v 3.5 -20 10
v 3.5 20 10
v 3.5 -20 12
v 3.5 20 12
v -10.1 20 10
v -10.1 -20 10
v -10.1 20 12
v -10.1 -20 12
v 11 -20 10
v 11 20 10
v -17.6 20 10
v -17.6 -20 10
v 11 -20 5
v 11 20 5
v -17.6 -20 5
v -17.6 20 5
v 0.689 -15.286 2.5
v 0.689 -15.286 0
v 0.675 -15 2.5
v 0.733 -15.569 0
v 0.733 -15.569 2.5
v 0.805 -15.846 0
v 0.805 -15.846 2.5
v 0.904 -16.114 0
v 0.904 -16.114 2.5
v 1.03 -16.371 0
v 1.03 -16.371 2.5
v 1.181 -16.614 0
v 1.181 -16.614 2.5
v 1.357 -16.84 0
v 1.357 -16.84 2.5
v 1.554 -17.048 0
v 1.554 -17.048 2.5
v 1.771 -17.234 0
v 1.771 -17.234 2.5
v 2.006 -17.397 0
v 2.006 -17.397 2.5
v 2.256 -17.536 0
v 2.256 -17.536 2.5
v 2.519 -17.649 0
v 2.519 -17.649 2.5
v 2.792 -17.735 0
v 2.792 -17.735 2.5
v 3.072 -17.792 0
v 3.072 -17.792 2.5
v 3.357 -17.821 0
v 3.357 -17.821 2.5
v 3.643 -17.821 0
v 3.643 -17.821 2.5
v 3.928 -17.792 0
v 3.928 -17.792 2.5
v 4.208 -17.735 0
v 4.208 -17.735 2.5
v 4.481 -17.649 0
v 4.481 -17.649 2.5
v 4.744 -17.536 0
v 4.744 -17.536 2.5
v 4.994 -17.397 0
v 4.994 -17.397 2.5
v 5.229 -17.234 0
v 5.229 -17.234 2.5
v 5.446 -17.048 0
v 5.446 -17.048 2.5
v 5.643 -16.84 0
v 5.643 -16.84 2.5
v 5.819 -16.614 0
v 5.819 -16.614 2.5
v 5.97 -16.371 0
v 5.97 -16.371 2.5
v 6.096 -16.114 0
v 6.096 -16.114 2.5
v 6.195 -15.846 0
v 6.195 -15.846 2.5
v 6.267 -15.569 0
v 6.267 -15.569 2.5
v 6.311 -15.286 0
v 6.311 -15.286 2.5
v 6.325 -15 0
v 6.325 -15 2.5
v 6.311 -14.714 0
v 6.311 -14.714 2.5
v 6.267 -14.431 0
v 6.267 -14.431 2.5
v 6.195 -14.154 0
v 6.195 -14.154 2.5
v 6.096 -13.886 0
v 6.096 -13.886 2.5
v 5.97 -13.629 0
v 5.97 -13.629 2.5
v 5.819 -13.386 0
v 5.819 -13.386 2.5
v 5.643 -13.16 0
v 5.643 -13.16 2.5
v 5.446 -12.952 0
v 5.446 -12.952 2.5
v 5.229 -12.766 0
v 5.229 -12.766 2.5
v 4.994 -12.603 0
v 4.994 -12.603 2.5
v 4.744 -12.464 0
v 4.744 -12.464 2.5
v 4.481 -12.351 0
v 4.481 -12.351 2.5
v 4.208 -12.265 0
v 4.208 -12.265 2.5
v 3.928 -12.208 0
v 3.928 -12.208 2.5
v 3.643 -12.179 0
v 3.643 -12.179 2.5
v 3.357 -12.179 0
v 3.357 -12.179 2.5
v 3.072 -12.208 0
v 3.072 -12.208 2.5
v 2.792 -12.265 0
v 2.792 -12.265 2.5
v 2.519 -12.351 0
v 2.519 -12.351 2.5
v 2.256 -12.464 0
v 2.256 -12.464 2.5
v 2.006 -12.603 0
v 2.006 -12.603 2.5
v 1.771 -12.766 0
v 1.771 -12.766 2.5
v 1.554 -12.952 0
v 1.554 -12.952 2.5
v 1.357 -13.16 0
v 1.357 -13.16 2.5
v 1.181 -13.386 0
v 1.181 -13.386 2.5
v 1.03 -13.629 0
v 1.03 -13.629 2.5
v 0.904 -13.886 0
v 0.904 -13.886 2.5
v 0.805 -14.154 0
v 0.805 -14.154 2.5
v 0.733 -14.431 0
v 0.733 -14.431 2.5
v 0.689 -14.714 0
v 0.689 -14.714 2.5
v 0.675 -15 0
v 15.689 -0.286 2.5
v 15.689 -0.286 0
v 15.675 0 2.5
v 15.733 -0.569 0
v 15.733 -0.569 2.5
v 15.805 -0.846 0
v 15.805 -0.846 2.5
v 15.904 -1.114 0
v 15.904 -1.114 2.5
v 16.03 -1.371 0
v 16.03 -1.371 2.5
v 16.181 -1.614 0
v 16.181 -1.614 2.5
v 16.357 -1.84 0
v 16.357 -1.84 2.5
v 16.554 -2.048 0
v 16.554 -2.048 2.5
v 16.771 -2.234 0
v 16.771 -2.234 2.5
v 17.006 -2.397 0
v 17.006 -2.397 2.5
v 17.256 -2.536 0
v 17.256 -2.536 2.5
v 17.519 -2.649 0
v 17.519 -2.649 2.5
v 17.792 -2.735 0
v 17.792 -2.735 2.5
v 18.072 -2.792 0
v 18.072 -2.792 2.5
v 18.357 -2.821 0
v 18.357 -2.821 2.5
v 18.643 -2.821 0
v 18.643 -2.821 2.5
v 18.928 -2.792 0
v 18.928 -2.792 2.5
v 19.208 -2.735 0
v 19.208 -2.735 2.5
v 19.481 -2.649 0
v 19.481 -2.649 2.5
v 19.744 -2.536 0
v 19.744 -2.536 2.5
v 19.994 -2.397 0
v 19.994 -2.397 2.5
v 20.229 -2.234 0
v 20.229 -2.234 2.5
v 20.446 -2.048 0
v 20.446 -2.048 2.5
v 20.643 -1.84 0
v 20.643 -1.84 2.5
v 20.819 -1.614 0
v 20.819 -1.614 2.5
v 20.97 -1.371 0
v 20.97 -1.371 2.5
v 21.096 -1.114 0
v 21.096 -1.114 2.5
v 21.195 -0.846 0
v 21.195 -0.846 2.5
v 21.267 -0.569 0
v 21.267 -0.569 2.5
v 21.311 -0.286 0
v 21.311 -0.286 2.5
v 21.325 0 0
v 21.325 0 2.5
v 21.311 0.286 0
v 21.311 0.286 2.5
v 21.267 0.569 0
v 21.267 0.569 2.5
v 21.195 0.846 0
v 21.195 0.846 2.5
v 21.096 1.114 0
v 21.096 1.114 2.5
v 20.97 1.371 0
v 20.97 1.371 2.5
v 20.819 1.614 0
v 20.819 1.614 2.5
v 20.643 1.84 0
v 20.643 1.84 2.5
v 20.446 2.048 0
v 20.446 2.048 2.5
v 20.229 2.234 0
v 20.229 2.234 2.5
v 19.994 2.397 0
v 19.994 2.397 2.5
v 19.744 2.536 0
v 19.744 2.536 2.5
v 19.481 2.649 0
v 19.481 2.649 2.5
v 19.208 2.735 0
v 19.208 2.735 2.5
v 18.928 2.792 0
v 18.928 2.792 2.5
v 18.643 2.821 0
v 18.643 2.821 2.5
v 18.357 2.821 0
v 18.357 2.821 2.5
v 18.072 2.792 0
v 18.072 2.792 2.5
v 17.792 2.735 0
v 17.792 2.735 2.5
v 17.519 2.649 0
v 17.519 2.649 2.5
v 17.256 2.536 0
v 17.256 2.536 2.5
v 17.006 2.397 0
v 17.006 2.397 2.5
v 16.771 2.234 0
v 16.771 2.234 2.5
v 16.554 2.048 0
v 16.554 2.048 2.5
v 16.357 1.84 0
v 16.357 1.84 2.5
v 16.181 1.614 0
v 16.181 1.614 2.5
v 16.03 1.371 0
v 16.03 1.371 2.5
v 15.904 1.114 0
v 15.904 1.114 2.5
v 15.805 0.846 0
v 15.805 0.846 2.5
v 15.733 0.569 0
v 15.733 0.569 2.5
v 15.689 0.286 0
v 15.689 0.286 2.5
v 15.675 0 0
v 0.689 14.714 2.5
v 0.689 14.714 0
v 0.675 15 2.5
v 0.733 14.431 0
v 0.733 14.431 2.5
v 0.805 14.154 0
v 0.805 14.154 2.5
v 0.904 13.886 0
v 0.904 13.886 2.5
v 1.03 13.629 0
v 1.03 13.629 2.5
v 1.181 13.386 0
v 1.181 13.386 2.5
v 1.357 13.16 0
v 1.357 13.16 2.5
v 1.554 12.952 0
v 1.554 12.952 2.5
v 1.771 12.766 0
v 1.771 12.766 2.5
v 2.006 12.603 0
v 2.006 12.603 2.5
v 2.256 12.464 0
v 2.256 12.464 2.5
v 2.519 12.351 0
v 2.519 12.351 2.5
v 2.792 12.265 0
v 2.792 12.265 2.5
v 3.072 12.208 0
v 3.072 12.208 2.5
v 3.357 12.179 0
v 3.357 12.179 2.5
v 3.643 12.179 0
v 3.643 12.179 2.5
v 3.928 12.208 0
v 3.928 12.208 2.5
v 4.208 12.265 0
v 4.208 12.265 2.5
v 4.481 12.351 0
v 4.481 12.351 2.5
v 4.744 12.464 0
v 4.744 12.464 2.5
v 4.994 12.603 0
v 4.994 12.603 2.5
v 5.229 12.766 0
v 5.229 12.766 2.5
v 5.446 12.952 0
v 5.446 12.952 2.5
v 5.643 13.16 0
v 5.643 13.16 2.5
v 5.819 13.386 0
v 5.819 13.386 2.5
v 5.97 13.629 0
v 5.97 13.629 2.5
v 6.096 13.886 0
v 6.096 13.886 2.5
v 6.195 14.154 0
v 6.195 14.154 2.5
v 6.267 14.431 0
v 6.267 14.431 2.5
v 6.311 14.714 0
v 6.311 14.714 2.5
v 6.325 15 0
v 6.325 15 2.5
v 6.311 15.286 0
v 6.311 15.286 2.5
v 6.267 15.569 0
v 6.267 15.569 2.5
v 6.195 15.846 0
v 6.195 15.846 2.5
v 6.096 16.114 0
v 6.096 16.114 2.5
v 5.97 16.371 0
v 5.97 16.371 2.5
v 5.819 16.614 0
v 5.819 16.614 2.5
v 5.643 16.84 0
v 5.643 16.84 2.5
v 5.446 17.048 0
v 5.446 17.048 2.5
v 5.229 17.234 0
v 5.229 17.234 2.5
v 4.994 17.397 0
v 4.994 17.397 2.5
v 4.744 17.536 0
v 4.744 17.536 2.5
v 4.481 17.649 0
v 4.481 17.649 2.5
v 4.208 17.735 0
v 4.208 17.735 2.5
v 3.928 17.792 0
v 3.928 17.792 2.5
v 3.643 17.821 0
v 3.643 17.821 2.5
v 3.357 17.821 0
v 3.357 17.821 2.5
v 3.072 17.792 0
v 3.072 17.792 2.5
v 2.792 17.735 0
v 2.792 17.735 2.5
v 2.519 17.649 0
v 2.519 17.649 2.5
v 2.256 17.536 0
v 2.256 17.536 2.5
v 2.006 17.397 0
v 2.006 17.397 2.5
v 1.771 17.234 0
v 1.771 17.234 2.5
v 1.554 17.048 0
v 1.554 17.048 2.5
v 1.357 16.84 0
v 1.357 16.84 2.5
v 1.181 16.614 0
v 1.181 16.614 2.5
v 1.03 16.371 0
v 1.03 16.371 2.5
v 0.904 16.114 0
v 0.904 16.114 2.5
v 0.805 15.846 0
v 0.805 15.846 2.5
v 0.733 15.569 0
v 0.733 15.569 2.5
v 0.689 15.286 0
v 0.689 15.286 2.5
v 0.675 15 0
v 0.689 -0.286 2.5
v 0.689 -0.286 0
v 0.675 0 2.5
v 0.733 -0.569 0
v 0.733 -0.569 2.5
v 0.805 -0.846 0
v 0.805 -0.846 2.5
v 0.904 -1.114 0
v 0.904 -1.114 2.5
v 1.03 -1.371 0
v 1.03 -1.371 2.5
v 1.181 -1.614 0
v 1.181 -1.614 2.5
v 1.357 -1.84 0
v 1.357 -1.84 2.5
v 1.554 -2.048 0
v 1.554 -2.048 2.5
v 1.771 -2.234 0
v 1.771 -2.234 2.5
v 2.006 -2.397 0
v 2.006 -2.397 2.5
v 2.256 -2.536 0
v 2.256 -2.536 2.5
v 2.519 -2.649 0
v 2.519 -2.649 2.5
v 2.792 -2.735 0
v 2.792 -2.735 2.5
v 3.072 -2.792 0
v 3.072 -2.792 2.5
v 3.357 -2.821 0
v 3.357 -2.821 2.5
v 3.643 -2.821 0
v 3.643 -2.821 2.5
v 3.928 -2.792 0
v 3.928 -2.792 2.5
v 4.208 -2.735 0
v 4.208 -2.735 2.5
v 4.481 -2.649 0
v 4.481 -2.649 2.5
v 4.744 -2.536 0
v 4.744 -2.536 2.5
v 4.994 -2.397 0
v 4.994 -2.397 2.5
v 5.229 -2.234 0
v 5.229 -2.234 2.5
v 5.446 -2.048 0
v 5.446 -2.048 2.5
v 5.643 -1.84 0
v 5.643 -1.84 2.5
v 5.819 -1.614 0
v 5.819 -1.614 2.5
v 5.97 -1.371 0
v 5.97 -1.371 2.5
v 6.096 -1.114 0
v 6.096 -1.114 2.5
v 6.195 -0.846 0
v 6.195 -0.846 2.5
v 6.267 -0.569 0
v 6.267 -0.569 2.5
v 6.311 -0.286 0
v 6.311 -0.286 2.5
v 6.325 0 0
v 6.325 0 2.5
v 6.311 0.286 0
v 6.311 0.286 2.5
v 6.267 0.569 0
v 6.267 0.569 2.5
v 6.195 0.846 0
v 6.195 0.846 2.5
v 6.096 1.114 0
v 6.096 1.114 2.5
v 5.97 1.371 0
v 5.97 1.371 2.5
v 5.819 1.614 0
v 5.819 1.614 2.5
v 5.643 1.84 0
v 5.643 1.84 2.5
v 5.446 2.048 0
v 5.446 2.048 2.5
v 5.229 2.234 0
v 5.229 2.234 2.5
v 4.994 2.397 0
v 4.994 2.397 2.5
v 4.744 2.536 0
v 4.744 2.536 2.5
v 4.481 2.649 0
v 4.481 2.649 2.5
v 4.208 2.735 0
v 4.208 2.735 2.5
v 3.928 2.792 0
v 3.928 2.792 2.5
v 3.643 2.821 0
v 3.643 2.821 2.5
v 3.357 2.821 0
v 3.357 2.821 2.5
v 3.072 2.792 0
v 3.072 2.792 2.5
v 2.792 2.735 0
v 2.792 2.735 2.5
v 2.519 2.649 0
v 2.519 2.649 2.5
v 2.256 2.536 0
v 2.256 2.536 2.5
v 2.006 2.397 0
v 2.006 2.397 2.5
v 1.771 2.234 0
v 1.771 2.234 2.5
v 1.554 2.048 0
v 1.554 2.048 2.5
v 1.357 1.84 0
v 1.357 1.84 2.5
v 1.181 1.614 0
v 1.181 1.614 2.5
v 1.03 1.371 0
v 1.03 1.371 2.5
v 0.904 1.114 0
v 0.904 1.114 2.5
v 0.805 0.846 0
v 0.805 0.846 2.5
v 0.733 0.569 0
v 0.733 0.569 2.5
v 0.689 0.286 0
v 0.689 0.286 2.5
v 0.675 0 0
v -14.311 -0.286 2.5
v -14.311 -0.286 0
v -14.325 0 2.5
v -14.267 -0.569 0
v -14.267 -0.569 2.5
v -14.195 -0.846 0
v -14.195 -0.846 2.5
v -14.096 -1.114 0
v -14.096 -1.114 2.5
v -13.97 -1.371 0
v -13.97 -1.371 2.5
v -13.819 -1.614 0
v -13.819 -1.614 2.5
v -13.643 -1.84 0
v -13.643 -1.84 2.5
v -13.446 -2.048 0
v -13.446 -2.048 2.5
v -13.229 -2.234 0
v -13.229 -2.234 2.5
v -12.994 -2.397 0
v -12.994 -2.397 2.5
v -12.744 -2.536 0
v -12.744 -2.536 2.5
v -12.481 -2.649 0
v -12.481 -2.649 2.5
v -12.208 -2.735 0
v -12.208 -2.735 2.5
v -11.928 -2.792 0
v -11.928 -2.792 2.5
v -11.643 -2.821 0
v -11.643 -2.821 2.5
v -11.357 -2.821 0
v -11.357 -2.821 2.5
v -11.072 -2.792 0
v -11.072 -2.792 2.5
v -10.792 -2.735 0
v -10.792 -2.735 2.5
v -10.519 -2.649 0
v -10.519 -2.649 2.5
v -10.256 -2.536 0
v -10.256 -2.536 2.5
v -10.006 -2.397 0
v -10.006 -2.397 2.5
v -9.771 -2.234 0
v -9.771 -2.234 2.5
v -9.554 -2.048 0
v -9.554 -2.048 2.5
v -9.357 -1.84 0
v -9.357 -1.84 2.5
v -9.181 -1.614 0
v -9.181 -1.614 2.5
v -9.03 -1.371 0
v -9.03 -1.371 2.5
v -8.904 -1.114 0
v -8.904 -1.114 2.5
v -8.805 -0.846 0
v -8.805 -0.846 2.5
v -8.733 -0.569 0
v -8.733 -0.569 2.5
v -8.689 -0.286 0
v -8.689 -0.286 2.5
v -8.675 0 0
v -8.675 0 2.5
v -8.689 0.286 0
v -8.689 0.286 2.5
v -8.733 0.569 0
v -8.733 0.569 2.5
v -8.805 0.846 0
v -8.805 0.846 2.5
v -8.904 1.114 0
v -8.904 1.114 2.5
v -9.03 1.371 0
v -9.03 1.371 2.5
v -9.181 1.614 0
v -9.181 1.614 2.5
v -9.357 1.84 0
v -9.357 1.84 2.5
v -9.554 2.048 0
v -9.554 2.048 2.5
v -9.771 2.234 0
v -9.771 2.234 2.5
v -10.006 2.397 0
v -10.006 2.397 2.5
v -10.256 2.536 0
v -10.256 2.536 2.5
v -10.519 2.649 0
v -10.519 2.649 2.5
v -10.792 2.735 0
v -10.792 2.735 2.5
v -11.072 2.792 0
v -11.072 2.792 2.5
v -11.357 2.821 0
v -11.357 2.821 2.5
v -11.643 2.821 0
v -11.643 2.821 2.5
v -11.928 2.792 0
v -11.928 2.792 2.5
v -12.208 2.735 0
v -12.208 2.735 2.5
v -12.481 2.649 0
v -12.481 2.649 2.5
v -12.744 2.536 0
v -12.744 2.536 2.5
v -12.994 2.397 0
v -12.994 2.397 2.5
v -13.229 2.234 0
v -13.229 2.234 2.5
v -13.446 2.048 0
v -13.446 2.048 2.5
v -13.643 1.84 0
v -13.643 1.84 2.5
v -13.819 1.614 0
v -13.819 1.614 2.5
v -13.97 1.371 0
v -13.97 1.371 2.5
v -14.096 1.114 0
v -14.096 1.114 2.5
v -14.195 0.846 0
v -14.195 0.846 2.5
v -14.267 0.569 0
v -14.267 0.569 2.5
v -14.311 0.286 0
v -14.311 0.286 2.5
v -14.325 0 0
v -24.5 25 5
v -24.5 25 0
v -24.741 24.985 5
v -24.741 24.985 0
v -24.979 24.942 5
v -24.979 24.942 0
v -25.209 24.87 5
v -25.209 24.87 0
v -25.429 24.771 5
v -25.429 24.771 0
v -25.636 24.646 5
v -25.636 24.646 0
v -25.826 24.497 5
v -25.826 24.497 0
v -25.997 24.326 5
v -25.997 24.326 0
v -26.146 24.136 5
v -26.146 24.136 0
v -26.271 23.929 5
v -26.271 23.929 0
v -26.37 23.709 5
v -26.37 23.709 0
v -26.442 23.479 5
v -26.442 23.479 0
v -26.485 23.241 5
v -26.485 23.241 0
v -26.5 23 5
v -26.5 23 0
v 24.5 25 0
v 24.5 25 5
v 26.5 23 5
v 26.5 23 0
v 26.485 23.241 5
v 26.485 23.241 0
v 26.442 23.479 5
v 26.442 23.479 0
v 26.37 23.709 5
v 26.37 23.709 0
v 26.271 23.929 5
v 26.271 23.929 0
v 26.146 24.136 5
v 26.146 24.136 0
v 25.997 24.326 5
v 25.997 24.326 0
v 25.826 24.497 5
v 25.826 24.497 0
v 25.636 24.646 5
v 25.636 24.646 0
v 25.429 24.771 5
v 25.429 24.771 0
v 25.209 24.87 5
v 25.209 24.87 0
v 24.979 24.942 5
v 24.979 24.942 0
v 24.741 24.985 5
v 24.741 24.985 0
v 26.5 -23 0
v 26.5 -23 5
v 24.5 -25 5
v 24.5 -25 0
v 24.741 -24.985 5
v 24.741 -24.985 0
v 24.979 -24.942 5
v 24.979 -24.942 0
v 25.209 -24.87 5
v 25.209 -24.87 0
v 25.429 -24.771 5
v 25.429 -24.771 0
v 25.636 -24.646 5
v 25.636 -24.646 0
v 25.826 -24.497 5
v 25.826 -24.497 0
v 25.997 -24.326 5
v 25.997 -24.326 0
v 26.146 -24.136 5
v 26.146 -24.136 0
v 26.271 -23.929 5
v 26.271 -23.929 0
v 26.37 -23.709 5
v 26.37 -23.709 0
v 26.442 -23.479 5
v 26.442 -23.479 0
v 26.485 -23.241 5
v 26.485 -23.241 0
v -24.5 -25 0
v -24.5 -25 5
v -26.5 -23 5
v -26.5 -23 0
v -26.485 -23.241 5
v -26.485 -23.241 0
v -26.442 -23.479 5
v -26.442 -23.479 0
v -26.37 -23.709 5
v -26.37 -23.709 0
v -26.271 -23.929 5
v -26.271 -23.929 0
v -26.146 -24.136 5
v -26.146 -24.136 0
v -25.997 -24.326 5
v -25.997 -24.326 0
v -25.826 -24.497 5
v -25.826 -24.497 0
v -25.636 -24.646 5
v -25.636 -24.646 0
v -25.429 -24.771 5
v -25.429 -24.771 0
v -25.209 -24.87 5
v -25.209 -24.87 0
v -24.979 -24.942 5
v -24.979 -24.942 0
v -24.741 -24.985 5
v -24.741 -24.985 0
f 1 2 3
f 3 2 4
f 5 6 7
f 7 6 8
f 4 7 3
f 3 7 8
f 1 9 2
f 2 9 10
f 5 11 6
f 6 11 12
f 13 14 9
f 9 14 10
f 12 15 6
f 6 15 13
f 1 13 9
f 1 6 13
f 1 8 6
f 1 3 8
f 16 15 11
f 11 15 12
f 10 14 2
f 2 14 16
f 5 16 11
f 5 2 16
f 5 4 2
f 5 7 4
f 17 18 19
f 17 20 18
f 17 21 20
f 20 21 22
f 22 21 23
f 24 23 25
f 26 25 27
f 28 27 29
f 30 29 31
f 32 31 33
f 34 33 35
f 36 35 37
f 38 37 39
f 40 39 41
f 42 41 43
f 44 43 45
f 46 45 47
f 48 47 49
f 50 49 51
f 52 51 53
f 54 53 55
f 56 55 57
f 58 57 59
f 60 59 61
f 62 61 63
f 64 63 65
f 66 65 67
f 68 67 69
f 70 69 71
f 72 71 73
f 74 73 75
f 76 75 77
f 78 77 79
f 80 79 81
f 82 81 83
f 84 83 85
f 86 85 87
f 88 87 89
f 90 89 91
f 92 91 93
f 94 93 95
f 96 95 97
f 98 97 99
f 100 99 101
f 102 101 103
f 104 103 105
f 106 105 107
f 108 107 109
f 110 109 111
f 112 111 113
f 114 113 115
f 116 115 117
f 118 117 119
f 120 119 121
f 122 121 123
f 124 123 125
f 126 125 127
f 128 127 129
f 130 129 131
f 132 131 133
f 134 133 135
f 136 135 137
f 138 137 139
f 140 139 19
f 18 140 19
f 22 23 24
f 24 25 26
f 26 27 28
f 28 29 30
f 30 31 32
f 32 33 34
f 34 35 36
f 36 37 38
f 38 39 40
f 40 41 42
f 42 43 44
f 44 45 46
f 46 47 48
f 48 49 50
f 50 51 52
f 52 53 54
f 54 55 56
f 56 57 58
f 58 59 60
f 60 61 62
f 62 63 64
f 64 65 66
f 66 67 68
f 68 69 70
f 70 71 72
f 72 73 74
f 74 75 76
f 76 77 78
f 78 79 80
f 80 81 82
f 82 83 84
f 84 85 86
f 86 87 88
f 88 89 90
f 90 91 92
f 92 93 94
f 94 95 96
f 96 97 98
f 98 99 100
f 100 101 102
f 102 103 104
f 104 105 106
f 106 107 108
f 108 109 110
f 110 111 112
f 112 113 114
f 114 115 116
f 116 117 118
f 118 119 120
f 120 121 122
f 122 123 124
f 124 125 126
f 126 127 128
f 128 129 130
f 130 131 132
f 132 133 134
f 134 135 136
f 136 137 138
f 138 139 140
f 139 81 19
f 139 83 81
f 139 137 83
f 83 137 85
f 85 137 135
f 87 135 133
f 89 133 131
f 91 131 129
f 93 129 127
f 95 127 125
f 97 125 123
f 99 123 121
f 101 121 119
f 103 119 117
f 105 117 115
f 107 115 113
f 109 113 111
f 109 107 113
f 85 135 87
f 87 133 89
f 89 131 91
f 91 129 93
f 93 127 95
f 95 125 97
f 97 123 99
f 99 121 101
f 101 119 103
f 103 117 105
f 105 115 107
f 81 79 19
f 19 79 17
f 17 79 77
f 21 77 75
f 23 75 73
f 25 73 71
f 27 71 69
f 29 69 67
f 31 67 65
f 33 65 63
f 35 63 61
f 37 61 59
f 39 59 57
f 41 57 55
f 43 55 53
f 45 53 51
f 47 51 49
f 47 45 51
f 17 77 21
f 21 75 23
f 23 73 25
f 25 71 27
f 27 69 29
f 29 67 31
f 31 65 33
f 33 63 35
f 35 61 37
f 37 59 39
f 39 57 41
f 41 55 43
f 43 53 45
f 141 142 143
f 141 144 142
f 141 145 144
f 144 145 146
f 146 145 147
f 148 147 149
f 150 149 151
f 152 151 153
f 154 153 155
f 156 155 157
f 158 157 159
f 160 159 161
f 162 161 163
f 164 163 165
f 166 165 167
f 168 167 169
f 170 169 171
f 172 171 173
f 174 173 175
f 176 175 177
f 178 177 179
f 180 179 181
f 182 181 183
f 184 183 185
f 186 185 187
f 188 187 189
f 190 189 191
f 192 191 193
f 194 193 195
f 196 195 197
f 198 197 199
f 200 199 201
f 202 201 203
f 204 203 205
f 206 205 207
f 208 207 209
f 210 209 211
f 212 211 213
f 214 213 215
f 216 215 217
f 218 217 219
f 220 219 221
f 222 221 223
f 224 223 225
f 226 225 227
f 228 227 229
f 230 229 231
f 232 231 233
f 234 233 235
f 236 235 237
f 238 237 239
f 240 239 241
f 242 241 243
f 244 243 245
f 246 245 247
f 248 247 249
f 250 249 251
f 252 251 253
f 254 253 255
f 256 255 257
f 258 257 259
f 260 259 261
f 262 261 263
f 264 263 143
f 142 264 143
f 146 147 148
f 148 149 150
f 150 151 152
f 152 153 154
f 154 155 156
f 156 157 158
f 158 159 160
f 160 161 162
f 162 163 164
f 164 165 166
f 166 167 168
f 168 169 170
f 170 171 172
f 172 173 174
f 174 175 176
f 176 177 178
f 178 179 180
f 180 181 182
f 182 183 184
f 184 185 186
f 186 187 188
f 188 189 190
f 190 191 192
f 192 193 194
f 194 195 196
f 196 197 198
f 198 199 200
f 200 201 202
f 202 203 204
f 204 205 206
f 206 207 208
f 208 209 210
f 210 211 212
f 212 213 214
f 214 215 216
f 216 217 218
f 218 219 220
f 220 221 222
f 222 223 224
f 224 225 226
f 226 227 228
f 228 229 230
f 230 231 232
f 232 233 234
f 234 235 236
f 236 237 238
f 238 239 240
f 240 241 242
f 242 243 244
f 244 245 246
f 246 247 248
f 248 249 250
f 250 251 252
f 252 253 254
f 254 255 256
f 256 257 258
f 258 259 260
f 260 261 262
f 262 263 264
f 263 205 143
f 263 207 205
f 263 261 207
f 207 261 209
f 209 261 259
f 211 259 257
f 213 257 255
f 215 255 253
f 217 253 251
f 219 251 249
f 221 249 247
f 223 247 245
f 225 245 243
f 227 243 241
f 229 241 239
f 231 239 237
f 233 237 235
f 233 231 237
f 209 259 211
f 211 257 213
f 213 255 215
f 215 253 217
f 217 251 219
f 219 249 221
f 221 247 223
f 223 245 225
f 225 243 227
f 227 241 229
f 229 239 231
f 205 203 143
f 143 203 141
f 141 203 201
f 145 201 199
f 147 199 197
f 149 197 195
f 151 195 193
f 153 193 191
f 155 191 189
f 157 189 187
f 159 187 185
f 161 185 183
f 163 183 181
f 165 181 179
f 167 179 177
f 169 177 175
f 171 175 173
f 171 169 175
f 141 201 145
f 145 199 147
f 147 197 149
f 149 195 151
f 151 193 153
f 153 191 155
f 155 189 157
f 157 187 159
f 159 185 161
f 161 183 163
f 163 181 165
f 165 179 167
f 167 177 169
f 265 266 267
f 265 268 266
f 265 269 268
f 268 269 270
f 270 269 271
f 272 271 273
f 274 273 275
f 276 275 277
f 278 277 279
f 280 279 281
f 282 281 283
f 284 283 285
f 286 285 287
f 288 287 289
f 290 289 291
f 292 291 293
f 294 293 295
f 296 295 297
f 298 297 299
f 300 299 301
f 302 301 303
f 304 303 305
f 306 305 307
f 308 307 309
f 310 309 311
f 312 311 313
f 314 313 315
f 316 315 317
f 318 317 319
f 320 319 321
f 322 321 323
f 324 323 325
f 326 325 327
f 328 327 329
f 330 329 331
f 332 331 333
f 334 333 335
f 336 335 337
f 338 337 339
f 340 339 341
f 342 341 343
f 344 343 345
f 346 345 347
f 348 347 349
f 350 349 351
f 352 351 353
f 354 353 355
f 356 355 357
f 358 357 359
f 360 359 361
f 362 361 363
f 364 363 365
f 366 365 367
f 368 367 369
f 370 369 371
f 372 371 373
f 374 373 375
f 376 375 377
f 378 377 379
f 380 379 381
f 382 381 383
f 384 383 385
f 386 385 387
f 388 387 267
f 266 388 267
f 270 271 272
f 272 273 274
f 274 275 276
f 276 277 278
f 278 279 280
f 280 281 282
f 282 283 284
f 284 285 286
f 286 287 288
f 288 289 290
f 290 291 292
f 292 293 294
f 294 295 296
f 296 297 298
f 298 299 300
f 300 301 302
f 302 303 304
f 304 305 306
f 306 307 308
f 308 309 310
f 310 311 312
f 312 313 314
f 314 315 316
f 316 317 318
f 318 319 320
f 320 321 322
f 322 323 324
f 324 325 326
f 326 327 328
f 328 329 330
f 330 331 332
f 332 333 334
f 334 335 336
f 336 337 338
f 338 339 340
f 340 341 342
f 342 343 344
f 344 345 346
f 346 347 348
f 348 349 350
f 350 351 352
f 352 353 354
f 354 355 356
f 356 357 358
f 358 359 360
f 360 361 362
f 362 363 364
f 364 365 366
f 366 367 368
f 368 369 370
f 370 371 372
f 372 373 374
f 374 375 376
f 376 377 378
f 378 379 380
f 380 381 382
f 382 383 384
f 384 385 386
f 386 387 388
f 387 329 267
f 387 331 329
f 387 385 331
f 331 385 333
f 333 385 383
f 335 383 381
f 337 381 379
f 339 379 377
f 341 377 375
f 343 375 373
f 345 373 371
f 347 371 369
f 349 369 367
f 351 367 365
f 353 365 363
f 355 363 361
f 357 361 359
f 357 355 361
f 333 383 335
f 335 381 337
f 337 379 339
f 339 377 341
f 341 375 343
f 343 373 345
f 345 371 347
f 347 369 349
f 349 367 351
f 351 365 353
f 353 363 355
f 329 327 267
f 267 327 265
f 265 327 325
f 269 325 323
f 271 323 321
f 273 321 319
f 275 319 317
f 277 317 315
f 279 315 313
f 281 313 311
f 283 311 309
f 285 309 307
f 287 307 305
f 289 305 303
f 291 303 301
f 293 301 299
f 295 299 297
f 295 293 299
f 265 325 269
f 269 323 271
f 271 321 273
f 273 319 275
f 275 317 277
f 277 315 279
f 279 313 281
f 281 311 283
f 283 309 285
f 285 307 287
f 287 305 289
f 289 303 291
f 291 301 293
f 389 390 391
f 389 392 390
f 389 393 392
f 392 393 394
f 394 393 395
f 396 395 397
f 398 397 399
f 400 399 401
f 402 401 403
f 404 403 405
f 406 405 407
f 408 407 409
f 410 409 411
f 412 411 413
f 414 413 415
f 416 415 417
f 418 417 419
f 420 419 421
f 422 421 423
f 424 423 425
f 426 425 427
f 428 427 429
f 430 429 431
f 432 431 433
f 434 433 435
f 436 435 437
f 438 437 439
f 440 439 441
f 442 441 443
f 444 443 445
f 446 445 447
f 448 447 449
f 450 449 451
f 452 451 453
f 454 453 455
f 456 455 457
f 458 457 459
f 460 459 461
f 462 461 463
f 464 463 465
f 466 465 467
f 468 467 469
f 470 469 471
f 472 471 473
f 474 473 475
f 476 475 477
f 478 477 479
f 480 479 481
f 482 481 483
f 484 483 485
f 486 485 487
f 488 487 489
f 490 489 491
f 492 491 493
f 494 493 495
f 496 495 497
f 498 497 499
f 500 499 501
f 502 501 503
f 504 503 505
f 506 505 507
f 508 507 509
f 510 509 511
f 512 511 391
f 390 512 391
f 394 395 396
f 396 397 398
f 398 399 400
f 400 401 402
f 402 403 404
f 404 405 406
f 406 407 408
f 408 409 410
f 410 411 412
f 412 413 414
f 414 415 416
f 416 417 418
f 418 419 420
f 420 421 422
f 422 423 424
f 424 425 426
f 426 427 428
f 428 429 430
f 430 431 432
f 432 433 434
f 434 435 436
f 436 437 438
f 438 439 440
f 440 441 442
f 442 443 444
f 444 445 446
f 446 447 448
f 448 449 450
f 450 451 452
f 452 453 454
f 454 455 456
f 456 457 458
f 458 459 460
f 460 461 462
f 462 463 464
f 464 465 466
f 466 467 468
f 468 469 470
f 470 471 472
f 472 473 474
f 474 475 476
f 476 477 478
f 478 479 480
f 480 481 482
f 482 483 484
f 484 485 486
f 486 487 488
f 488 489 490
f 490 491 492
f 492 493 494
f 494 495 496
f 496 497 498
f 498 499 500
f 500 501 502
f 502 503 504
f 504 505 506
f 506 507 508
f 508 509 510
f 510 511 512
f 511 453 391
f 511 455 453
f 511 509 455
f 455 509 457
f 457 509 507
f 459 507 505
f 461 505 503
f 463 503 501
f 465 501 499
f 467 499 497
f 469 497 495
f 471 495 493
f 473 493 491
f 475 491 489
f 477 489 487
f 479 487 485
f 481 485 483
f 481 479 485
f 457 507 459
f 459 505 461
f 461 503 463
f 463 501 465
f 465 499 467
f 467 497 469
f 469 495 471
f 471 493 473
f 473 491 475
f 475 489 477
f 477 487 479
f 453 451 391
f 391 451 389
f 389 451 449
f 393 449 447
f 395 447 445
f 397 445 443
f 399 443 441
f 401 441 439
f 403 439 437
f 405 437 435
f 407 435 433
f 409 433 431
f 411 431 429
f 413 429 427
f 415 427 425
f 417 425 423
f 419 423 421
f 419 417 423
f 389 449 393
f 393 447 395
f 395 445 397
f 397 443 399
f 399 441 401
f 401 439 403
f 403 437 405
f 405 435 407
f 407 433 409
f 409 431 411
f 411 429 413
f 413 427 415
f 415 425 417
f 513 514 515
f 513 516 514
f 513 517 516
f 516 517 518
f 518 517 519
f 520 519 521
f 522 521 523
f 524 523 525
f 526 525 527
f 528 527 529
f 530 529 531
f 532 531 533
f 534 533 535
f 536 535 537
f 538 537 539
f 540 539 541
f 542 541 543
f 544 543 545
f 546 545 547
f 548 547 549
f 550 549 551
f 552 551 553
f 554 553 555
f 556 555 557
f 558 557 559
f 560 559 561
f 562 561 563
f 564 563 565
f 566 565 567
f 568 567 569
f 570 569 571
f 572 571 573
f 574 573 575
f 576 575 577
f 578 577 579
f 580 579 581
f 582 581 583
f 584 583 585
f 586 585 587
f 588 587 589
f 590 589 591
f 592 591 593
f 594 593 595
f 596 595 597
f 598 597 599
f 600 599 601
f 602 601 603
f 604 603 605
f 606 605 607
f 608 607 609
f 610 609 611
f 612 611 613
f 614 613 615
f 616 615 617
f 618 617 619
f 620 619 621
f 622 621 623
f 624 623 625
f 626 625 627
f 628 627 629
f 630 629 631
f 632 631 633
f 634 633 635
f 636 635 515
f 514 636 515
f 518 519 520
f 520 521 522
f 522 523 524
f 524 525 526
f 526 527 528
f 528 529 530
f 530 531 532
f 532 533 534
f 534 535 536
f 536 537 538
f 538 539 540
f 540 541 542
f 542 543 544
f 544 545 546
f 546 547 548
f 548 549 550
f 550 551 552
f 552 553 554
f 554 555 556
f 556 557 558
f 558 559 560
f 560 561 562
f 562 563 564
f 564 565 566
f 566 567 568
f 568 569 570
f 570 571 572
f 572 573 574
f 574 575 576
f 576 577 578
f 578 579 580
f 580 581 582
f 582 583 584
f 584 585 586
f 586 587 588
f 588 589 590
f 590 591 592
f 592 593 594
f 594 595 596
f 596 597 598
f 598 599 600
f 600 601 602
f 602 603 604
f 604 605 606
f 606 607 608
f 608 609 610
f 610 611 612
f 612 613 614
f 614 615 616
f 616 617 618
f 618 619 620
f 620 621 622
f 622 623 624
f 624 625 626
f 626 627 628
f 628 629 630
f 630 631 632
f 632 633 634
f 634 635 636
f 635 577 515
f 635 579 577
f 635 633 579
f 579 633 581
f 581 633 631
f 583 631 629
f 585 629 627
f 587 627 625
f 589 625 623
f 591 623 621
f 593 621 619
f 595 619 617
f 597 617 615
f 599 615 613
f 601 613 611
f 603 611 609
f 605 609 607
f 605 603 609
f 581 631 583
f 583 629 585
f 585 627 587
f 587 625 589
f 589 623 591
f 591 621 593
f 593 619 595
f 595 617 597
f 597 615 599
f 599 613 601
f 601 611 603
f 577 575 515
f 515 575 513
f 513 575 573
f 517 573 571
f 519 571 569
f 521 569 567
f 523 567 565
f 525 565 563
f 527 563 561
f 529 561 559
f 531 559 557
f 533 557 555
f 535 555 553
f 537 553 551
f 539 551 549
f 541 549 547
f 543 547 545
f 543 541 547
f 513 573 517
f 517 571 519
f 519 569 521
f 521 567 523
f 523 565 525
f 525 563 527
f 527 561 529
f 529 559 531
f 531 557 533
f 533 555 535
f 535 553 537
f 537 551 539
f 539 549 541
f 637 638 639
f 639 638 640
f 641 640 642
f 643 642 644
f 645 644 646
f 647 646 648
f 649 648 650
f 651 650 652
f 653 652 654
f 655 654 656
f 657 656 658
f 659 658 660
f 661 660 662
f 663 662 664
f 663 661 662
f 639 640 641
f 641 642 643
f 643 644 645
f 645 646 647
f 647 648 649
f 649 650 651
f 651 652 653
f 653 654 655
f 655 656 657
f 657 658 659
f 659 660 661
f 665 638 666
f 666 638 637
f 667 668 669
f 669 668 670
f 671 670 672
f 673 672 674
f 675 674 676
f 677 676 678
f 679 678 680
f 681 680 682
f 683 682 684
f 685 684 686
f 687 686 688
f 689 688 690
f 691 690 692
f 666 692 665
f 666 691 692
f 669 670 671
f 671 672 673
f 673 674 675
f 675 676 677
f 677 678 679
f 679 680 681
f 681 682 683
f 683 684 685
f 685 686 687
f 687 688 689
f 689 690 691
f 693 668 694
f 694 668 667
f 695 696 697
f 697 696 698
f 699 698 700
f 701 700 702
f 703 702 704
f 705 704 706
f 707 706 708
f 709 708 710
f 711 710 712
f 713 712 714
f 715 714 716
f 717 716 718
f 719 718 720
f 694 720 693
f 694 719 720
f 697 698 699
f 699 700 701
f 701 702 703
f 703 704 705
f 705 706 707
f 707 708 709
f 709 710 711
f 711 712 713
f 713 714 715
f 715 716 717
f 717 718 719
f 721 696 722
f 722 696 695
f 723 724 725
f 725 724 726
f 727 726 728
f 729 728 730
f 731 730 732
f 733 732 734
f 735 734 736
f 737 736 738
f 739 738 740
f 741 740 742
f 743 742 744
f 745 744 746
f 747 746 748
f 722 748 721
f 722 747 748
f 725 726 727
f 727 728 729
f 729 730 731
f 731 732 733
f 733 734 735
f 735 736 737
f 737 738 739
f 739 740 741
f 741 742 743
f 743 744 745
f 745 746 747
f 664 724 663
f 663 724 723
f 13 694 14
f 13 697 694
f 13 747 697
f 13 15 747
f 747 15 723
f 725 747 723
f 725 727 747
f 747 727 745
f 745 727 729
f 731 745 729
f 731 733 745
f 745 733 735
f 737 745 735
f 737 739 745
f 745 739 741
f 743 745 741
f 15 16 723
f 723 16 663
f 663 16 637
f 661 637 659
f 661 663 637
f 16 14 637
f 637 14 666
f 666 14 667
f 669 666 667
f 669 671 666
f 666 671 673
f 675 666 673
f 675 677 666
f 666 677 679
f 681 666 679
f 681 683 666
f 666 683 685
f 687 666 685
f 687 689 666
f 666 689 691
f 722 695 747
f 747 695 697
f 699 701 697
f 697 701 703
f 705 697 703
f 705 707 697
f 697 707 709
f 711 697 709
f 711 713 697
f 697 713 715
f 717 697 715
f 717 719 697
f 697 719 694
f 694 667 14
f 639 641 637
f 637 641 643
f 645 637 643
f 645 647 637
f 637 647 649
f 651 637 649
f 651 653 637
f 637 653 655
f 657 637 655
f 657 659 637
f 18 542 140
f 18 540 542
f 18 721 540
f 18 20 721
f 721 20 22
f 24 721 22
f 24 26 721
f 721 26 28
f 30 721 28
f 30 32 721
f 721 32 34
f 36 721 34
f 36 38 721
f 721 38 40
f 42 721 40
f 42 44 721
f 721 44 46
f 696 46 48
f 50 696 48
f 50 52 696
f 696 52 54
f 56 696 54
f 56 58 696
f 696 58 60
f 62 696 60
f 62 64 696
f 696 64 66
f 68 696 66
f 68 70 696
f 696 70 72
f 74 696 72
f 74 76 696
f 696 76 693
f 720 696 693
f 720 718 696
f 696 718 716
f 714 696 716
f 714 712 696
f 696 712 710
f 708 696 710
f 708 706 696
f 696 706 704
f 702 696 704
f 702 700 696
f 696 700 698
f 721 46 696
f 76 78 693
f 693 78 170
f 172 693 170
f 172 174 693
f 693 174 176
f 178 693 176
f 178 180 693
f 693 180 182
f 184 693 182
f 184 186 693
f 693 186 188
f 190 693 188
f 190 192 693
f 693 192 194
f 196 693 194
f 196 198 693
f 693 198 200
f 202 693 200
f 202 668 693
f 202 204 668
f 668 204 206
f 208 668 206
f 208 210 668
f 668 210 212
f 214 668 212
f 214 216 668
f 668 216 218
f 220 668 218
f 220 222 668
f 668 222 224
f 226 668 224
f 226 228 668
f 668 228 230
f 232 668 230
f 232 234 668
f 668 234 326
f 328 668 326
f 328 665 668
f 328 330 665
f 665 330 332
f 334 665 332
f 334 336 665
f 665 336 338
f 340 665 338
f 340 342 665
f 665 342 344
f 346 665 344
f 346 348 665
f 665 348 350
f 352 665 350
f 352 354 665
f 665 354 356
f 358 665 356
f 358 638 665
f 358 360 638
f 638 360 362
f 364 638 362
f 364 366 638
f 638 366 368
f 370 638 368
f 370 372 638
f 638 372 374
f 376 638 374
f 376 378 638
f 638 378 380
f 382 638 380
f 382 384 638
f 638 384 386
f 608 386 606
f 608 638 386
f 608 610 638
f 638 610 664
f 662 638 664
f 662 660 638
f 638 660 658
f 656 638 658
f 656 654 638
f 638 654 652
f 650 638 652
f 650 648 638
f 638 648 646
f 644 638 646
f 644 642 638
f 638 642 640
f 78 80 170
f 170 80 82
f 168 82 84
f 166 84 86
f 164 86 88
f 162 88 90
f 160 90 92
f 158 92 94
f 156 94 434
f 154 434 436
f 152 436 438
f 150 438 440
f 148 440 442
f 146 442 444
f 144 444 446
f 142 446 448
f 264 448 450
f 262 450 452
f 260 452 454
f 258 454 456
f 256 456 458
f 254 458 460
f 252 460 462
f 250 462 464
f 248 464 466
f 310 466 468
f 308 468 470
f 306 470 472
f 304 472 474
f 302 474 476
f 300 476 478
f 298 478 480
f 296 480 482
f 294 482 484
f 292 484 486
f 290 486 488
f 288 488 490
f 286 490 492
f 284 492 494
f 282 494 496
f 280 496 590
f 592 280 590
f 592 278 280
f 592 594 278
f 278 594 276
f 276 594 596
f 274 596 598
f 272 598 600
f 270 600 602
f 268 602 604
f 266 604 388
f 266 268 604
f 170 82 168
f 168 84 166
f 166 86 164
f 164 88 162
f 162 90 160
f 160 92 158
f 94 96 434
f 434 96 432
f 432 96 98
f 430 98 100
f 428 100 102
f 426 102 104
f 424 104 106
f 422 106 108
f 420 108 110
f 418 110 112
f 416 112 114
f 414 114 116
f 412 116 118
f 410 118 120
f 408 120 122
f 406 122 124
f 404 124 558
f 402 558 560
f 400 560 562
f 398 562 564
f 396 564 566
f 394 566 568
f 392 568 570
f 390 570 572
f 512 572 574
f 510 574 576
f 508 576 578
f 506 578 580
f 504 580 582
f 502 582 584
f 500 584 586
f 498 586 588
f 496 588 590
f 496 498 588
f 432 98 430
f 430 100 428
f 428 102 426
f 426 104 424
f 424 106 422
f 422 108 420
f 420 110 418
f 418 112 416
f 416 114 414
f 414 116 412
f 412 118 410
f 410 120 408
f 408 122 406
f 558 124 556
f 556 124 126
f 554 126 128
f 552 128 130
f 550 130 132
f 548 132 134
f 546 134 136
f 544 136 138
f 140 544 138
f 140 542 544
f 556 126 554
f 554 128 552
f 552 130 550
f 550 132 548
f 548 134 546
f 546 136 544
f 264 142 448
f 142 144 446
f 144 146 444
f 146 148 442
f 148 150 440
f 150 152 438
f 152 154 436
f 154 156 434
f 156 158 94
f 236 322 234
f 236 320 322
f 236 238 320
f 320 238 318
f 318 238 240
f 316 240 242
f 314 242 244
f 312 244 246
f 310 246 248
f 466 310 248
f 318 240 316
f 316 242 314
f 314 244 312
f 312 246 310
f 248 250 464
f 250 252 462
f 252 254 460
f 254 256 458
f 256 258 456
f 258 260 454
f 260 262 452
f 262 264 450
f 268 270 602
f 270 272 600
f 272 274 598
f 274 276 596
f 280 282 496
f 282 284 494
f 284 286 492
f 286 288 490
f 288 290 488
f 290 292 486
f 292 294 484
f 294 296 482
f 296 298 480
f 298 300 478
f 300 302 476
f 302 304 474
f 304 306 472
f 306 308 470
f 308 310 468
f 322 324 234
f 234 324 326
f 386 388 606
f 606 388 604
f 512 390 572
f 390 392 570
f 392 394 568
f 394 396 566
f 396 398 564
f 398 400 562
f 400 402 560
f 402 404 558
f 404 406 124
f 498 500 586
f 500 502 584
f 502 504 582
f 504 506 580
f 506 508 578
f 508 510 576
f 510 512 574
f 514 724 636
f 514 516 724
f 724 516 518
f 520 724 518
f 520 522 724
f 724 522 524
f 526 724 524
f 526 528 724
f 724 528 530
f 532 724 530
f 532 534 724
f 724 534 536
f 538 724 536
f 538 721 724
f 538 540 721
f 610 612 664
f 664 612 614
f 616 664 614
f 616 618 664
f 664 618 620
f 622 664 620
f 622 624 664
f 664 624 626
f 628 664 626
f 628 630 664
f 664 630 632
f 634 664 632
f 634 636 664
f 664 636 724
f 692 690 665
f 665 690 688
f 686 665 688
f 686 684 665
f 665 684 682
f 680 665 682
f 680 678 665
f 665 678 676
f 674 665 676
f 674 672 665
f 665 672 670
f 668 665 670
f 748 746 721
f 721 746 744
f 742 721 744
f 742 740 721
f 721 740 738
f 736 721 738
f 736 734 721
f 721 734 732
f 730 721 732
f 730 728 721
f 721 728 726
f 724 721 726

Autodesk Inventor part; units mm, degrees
ref_plane "YZ Plane" through (0, 0, 0) normal (1, 0, 0) x (0, 1, 0)
ref_plane "XZ Plane" through (0, 0, 0) normal (0, 1, 0) x (-1, 0, 0)
ref_plane "XY Plane" through (0, 0, 0) normal (0, 0, 1) x (1, 0, 0)
sketch "Sketch1" plane through (0, 0, 0) normal (0, 0, 1) x (1, 0, 0)
  line L0 (-24.5, 25) -> (24.5, 25)
  line L1 (26.5, 23) -> (26.5, -23)
  line L2 (24.5, -25) -> (-24.5, -25)
  line L3 (-26.5, -23) -> (-26.5, 23)
  arc A0 (-24.5, 25) -> (-26.5, 23) centre (-24.5, 23) ccw
  arc A1 (-26.5, -23) -> (-24.5, -25) centre (-24.5, -23) ccw
  arc A2 (24.5, -25) -> (26.5, -23) centre (24.5, -23) ccw
  arc A3 (26.5, 23) -> (24.5, 25) centre (24.5, 23) ccw
  point P0 (0, 0)
  point P1 (-26.5, 25)
  point P2 (26.5, -25)
  point P3 (26.5, 25)
  dimension "d0" = 53
  dimension "d2" = 2
  dimension "d3" = 25
  dimension "d4" = 50
  dimension "d5" = 26.5
extrude "base" add sketch "Sketch1" along normal blind 5
sketch "Sketch3" plane through (0, 0, 0) normal (0, 0, -1) x (-1, 0, 0)
  line L0 (26.5, 23) -> (26.5, -23) projected
  circle A0 centre (-3.5, 15) radius 2.825
  circle A1 centre (-18.5, 0) radius 2.825
  circle A2 centre (-3.5, 0) radius 2.825
  circle A3 centre (-3.5, -15) radius 2.825
  circle A4 centre (11.5, 0) radius 2.825
  point P0 (0, 0)
  dimension "d14" = 15
  dimension "d15" = 15
  dimension "d16" = 15
  dimension "d17" = 15
  dimension "d18" = 15
  dimension "d56" = 5.65
  dimension "d57" = 5.65
  dimension "d58" = 5.65
  dimension "d59" = 5.65
  dimension "d60" = 5.65
extrude "magnetExt" cut sketch "Sketch3" against normal blind 2.5
sketch "Sketch7" plane through (0, 0, 5) normal (0, 0, 1) x (1, 0, 0)
  line L0 (-17.6, 20) -> (11, 20)
  line L1 (11, 20) -> (11, -20)
  line L2 (11, -20) -> (-17.6, -20)
  line L3 (-17.6, -20) -> (-17.6, 20)
  line L4 (-26.5, 23) -> (-26.5, -23) projected
  point P0 (0, 0)
  dimension "d70" = 40
  dimension "d71" = 20
  dimension "d72" = 28.6
  dimension "d73" = 8.9
extrude "spacerOne" add sketch "Sketch7" along normal blind 5
sketch "Sketch8" plane through (0, 0, 10) normal (0, 0, 1) x (1, 0, 0)
  line L0 (-10.1, 20) -> (3.5, 20)
  line L1 (3.5, 20) -> (3.5, -20)
  line L2 (3.5, -20) -> (-10.1, -20)
  line L3 (-10.1, -20) -> (-10.1, 20)
  line L4 (-26.5, 23) -> (-26.5, -23) projected
  point P0 (0, 0)
  dimension "d76" = 40
  dimension "d77" = 20
  dimension "d78" = 13.6
  dimension "d79" = 30
extrude "sample" add sketch "Sketch8" along normal blind 2
equation "\"d3\" = 0.5 * d4"
equation "\"d5\" = 0.5 * d0"
equation "\"d16\" = d15"
equation "\"d17\" = d15"
equation "\"d18\" = d15"
equation "\"d56\" = d60"
equation "\"d57\" = d60"
equation "\"d58\" = d60"
equation "\"d59\" = d60"
equation "\"d71\" = 0.5 * d70"
equation "\"d77\" = 0.5 * d76"
equation "\"d1\" = d0"
properties part number "chamberInsertFlat"
